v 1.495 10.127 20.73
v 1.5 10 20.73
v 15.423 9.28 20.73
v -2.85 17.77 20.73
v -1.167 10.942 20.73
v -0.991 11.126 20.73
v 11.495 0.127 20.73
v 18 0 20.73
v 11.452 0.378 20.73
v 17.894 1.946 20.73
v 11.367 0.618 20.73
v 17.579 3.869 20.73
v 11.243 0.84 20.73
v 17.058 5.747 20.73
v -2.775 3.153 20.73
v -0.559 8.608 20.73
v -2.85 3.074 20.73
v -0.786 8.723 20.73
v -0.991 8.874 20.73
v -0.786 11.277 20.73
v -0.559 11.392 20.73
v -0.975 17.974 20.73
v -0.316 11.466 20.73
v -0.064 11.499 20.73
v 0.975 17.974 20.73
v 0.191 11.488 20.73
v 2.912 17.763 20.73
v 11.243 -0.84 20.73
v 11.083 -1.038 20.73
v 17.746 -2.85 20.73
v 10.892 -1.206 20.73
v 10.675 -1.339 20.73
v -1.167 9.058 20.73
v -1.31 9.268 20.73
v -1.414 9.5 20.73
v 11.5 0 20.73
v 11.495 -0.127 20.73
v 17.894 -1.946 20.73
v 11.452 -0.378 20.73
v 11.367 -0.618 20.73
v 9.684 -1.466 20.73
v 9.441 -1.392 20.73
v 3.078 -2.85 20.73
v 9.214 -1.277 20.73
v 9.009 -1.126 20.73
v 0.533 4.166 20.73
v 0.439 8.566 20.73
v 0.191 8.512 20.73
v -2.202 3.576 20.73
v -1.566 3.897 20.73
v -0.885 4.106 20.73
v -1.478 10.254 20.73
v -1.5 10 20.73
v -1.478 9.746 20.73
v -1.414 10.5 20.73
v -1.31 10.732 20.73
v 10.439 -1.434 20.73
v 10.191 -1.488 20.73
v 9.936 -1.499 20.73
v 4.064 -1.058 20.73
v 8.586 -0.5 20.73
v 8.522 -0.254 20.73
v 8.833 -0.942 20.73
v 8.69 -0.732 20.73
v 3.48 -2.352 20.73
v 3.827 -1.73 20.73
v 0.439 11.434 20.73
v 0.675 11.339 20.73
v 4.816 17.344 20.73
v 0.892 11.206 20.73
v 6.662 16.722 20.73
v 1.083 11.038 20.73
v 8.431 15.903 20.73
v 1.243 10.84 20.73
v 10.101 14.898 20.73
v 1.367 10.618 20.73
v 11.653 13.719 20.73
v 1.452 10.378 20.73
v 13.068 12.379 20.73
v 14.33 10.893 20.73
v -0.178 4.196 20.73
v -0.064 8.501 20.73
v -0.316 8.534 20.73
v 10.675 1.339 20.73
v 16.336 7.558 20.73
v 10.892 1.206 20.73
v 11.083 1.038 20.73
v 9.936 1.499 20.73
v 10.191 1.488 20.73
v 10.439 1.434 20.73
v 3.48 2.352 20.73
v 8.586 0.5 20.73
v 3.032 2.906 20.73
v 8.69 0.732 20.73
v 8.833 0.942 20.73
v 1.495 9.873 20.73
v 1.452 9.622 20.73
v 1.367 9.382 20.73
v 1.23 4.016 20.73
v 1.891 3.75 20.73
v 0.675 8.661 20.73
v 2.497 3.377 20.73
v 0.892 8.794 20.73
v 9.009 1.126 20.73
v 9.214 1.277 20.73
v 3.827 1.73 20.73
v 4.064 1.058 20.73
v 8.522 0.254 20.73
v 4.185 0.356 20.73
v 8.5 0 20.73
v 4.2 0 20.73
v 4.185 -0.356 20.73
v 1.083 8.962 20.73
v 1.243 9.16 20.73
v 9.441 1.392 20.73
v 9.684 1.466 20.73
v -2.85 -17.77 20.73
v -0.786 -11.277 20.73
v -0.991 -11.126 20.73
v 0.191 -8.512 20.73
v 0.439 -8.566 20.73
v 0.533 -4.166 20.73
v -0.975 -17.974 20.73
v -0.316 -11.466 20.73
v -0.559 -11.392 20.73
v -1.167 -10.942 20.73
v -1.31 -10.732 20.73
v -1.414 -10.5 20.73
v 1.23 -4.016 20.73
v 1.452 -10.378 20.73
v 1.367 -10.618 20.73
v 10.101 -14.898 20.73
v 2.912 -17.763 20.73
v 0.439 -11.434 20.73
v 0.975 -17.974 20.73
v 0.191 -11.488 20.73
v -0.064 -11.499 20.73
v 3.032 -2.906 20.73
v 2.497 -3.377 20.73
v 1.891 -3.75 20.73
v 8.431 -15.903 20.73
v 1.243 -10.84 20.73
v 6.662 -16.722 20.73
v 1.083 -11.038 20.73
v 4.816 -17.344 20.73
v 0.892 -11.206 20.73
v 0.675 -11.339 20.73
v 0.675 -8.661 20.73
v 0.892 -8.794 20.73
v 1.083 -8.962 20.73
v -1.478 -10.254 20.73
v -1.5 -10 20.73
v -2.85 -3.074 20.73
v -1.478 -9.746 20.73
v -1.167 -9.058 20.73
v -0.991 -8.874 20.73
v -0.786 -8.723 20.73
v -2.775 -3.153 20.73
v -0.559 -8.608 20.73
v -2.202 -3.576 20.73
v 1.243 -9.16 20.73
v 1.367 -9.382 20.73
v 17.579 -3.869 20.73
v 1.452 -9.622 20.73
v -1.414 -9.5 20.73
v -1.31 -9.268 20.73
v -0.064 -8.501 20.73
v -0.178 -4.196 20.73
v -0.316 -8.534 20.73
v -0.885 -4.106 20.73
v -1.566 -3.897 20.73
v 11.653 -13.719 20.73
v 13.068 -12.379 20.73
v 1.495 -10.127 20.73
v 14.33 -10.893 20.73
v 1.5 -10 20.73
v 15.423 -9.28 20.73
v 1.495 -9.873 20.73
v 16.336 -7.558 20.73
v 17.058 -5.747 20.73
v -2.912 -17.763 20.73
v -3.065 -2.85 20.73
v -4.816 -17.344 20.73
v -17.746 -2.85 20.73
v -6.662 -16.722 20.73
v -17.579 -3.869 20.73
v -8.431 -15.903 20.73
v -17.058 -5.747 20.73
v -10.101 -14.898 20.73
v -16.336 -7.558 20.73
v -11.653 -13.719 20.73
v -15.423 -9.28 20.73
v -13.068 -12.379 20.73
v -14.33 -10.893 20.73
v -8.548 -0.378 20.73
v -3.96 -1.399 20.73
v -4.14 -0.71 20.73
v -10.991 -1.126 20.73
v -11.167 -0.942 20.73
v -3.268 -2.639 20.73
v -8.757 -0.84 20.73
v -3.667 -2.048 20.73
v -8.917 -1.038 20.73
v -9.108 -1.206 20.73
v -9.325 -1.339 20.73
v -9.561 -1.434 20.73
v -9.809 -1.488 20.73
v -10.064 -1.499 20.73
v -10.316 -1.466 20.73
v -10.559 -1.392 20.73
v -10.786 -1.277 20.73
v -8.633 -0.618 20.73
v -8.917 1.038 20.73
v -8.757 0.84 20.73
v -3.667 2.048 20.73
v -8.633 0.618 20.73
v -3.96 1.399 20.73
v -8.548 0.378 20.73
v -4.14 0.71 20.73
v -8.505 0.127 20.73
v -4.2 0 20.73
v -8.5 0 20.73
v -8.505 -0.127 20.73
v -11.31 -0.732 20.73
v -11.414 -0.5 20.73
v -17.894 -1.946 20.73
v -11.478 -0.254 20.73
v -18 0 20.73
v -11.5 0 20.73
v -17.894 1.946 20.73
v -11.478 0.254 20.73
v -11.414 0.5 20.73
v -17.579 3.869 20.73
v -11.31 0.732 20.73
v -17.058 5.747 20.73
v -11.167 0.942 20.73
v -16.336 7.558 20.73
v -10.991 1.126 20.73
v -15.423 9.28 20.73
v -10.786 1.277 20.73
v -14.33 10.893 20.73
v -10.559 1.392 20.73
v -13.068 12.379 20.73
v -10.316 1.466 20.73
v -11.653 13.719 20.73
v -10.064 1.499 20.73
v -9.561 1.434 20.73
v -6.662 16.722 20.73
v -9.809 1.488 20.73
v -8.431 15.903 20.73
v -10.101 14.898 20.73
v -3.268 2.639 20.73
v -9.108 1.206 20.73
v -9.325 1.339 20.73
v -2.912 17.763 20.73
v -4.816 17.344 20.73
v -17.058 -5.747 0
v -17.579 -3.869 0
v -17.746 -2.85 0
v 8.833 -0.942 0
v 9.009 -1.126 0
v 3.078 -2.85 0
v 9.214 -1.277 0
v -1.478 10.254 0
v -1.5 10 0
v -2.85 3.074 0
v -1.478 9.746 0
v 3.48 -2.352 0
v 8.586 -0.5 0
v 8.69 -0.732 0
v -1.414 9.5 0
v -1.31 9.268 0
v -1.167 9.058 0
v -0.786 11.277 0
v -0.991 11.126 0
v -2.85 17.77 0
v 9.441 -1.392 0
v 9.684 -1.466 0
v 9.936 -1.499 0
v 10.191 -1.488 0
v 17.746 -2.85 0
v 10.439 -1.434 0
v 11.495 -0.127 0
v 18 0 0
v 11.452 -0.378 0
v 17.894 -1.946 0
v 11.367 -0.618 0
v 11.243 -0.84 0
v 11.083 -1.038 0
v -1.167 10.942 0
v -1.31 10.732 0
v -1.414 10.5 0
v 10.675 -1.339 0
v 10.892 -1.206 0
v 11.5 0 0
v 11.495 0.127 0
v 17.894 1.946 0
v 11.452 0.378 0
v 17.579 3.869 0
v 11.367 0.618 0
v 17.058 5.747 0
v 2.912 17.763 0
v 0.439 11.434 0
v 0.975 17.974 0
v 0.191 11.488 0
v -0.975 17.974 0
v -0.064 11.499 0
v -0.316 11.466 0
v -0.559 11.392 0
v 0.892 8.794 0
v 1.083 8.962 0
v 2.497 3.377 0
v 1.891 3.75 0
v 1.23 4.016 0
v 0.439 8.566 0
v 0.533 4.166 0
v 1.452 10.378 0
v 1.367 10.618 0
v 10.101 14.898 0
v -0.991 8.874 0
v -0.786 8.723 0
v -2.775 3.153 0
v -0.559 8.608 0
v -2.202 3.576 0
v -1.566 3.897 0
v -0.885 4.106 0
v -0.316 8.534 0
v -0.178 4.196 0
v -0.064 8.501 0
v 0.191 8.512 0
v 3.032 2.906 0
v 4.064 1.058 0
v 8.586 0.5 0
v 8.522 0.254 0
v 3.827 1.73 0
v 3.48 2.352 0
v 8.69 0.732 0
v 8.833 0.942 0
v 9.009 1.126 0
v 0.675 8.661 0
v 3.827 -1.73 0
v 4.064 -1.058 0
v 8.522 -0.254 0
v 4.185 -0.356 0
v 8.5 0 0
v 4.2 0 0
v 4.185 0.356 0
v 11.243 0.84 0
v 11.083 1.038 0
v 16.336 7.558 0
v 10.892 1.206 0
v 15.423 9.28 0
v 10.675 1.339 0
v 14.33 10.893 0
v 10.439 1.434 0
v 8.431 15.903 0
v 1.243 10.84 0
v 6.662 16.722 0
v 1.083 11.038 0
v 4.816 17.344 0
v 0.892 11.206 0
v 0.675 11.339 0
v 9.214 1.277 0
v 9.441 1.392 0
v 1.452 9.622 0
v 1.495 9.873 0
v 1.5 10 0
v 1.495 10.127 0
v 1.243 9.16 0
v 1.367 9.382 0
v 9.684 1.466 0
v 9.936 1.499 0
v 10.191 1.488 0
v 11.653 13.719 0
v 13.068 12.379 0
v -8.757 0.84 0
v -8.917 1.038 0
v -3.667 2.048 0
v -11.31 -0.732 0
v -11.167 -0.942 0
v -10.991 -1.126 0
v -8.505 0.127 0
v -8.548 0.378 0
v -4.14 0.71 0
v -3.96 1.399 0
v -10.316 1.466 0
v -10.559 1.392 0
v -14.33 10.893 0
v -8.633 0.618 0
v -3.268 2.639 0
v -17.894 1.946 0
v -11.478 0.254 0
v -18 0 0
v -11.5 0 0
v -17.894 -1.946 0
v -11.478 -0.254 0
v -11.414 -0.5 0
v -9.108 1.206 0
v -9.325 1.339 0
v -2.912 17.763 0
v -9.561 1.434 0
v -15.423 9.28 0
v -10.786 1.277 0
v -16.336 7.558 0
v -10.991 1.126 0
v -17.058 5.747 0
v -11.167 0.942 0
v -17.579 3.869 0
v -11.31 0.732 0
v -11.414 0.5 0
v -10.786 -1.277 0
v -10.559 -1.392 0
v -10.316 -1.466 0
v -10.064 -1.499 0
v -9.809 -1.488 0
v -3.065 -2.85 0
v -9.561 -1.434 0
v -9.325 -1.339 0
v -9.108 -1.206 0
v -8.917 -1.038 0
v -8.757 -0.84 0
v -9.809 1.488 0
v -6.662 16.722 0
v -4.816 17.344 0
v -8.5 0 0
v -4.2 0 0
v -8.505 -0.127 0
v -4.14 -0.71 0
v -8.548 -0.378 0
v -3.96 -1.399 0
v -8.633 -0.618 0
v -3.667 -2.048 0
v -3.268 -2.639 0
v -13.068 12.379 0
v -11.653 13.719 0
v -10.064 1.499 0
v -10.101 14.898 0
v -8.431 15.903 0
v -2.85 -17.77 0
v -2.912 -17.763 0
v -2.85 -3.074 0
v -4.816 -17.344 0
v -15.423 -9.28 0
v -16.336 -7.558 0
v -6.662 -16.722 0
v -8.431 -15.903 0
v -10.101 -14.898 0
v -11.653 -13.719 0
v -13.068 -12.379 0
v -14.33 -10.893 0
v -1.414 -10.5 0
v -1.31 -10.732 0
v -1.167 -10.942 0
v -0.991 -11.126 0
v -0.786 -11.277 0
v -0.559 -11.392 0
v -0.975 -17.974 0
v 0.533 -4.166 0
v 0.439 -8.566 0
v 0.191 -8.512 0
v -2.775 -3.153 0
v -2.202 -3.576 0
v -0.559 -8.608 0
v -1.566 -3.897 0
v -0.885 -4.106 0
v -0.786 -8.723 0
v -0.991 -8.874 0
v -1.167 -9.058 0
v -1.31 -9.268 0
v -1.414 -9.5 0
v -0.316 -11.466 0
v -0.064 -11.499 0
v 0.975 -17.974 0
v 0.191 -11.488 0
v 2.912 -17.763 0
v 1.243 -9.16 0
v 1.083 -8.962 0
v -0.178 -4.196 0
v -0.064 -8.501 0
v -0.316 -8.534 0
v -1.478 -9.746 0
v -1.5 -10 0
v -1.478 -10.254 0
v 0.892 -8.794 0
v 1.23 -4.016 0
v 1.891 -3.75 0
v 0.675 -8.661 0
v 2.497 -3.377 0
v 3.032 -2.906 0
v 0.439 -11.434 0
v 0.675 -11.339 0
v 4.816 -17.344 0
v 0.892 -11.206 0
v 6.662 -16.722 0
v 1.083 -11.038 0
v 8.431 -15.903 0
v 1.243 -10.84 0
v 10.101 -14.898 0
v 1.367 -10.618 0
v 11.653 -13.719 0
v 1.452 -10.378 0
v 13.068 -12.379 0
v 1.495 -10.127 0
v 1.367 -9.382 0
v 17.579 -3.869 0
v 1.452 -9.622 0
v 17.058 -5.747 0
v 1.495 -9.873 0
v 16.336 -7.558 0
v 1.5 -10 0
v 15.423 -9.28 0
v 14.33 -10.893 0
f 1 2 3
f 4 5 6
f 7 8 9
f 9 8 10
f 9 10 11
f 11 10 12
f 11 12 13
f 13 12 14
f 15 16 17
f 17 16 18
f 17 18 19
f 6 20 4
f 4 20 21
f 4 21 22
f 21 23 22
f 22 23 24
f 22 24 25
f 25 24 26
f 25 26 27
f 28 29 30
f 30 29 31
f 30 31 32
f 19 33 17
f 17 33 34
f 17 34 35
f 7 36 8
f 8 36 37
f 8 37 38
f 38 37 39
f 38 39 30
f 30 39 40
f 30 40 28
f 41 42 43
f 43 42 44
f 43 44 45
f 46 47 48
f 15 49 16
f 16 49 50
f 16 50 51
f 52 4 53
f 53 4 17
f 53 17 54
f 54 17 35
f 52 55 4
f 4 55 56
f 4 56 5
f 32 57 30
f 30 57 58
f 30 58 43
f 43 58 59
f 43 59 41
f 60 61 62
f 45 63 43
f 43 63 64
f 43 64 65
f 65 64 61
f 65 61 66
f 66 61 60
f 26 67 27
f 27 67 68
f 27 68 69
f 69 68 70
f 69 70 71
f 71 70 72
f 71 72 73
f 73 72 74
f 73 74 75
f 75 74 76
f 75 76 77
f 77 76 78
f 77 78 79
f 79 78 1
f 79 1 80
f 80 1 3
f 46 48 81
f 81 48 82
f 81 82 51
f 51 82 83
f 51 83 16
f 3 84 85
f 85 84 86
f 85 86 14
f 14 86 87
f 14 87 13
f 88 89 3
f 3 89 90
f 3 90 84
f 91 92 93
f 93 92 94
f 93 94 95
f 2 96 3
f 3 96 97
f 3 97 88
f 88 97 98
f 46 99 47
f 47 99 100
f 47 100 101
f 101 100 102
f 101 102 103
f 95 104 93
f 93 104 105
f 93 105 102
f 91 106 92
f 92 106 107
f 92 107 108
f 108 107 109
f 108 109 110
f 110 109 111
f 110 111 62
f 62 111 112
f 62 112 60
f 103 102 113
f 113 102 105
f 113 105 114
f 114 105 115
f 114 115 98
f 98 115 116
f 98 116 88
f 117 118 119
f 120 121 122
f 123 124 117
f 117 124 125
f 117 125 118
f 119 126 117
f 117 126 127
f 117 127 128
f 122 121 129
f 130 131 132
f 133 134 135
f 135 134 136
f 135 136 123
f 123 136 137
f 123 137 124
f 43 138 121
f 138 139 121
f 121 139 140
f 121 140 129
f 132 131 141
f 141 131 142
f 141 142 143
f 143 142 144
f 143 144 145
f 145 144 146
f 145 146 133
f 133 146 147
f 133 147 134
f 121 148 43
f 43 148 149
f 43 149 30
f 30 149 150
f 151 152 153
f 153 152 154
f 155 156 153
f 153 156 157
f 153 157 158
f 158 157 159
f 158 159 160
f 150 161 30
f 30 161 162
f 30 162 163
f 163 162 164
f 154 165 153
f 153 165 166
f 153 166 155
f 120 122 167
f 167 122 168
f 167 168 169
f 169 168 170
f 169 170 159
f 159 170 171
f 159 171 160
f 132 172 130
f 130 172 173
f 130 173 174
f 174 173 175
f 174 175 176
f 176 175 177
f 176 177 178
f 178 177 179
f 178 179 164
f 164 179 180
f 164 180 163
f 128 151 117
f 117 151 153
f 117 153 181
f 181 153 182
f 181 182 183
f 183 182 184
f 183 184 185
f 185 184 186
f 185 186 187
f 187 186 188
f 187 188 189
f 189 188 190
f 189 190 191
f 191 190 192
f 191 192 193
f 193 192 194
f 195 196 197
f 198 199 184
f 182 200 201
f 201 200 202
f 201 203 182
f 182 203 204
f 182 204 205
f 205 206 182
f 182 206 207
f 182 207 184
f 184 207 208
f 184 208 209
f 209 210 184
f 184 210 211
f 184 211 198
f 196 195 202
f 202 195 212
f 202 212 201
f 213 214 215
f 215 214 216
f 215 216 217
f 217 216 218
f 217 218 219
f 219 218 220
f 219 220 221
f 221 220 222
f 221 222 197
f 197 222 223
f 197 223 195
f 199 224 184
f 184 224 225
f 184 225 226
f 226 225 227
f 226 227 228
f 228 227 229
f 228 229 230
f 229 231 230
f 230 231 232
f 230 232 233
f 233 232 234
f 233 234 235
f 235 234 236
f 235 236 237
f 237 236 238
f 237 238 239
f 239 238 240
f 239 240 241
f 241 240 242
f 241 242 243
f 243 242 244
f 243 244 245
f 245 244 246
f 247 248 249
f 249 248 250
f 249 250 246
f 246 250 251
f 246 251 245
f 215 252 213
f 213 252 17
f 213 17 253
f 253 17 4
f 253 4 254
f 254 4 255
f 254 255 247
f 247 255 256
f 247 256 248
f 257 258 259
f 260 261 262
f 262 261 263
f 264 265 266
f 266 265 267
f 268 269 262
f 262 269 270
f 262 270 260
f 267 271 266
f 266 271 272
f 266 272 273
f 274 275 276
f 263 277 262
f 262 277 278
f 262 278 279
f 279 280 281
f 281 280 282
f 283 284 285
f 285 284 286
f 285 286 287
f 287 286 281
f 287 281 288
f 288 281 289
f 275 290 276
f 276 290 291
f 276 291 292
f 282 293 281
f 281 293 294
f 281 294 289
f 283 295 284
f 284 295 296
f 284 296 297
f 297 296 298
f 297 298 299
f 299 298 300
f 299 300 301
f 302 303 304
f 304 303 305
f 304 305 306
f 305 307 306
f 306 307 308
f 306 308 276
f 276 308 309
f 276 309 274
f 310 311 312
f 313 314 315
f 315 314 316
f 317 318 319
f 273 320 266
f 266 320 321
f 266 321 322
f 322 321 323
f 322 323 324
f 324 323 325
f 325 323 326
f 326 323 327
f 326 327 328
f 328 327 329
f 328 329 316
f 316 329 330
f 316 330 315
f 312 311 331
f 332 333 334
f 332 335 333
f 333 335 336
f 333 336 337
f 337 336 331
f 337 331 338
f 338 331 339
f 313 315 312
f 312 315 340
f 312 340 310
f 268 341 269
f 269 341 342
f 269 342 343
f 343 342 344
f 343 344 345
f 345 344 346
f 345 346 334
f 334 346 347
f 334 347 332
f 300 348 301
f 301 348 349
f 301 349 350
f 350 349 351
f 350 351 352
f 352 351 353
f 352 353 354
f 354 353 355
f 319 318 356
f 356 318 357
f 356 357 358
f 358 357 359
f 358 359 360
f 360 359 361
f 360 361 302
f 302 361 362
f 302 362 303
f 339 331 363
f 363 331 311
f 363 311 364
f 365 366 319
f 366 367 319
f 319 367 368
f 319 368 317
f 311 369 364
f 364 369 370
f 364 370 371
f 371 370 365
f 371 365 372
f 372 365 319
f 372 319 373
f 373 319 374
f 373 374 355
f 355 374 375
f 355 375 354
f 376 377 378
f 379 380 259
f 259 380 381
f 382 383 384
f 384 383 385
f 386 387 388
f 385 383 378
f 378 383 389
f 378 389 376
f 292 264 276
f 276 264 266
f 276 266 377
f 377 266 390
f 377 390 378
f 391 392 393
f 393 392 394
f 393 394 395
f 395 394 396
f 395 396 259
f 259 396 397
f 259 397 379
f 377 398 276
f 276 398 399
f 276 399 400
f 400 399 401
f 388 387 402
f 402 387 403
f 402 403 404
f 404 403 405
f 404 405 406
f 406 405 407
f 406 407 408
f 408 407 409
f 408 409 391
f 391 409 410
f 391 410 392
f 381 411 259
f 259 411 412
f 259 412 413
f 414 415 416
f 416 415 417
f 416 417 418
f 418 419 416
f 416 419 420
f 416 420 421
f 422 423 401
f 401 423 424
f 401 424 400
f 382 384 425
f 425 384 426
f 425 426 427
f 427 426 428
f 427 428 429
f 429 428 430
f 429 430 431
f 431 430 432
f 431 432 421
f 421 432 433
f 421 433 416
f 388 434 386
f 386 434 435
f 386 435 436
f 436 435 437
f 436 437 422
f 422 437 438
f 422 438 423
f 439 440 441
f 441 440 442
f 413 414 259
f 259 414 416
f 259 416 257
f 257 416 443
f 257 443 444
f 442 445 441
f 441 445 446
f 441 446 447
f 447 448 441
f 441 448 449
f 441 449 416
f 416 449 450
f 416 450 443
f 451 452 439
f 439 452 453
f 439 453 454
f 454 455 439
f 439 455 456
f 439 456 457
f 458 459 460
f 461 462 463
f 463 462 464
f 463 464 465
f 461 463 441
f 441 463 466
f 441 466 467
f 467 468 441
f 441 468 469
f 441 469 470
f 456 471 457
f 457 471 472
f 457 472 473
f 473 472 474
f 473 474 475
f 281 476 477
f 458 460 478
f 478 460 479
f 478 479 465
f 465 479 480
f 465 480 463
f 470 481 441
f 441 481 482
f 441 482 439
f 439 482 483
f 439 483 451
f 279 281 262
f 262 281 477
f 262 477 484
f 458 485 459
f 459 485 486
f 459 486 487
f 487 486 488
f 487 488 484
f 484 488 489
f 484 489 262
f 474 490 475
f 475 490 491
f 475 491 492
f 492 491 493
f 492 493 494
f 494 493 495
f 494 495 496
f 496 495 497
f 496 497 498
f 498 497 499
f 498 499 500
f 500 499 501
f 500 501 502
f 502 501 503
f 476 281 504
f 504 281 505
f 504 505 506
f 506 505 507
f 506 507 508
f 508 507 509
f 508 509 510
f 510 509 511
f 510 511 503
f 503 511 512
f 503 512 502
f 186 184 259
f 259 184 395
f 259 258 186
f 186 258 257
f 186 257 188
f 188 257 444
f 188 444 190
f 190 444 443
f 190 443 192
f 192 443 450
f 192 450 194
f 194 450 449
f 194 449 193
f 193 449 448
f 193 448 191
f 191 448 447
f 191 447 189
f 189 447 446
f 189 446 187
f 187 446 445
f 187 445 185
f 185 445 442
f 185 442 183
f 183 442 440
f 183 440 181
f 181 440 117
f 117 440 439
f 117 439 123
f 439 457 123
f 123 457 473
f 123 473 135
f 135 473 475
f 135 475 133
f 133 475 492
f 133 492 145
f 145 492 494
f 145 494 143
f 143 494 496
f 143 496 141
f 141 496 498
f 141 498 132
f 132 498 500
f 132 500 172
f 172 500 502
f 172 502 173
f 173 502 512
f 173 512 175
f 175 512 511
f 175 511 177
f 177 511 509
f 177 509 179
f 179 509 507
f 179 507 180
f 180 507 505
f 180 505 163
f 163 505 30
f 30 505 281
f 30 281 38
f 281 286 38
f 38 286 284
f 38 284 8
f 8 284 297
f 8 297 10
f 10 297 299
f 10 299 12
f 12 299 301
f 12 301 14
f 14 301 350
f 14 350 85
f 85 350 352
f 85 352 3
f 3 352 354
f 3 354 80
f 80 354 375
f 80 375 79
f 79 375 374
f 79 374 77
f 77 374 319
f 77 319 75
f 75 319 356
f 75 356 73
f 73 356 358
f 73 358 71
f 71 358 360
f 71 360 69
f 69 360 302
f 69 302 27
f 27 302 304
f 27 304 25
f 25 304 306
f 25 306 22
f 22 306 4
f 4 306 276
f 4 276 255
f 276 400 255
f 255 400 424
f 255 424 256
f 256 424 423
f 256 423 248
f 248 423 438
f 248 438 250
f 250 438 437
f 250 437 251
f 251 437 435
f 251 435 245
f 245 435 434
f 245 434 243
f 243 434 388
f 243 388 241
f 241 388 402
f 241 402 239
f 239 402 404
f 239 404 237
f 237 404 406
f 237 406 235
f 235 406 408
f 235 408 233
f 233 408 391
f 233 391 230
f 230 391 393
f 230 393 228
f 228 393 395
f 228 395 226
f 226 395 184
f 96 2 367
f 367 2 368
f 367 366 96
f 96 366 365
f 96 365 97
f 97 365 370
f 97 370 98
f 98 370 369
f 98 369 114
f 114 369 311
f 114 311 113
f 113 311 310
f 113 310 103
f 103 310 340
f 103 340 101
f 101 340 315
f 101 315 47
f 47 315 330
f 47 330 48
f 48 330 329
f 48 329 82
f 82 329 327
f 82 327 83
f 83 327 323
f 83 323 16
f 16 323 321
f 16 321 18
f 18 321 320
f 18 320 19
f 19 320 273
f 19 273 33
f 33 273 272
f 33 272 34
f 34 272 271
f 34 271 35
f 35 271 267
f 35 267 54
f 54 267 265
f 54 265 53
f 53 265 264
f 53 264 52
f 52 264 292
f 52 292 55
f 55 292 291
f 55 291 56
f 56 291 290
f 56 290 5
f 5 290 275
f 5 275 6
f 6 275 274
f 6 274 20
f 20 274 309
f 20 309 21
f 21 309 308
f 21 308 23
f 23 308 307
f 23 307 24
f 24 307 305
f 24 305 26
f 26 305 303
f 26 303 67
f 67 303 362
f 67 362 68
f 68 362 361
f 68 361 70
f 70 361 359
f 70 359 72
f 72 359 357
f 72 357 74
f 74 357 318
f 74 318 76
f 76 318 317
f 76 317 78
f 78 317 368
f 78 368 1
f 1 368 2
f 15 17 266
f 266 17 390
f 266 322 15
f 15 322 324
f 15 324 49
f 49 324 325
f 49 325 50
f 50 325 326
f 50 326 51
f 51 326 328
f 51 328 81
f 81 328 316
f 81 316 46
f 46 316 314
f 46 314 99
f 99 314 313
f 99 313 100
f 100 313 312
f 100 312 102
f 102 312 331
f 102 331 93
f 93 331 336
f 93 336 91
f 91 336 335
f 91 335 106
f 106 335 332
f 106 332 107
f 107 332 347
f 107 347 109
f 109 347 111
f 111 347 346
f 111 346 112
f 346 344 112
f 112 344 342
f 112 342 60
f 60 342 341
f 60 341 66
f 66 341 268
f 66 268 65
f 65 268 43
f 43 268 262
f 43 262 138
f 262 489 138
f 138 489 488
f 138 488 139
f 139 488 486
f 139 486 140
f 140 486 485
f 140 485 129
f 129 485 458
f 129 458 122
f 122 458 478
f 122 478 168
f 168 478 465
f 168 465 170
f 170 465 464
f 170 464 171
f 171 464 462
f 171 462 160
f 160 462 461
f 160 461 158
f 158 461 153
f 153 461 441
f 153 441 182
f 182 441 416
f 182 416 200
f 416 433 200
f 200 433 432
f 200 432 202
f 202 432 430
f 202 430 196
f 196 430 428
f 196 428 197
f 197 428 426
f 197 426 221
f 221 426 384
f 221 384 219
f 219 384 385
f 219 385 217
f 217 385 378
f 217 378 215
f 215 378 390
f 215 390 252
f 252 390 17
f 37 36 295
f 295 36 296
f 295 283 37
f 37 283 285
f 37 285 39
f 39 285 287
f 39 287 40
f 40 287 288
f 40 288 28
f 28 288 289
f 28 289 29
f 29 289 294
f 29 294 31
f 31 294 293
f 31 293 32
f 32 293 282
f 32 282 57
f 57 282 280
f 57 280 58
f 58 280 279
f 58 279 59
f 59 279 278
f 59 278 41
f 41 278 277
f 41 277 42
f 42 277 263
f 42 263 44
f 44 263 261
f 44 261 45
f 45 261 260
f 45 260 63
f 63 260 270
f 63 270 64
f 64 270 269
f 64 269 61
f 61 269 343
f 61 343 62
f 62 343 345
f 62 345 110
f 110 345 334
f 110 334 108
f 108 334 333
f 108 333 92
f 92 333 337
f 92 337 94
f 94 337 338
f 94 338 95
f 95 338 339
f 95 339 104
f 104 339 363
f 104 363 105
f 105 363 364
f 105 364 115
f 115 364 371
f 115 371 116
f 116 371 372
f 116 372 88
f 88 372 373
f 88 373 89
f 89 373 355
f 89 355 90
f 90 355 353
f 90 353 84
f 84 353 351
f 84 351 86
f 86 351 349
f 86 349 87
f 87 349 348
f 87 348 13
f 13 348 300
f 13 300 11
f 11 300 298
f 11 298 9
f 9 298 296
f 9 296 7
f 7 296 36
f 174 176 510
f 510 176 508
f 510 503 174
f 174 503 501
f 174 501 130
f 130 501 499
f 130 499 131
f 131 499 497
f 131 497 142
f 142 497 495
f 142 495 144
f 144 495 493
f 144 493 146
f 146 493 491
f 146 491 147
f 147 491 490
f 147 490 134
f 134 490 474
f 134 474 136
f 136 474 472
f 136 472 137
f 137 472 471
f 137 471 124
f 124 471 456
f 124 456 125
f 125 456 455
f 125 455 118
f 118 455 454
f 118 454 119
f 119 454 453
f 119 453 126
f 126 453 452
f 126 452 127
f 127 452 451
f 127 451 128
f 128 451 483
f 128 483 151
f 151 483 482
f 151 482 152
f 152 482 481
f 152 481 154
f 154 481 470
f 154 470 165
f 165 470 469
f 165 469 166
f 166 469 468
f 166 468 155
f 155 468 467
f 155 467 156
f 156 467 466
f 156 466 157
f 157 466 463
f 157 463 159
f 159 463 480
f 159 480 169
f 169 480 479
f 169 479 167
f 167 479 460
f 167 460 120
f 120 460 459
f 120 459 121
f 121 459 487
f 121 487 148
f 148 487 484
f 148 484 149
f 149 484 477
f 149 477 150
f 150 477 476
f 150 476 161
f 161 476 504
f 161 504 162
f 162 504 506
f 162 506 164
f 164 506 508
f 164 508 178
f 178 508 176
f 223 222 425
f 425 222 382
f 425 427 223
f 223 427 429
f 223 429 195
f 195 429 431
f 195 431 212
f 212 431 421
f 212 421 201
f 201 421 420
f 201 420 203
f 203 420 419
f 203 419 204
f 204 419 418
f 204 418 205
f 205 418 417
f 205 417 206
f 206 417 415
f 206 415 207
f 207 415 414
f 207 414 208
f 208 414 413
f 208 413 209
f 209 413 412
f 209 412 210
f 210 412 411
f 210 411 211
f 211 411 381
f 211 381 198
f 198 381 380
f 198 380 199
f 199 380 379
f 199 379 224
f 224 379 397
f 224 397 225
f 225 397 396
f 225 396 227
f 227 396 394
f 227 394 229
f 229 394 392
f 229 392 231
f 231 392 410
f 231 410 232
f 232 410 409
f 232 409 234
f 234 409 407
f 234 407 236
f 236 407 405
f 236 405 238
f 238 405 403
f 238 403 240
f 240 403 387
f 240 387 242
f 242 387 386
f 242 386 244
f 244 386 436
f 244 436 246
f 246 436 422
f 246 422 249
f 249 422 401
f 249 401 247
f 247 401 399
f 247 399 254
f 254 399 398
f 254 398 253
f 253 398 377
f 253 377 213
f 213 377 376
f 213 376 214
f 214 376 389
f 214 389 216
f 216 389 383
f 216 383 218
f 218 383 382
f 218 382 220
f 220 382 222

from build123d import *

# Parameters (mm, degrees)
SKETCH1_R           = 18
SKETCH1_R_2         = 1.5
SKETCH1_R_3         = 4.2
BOSS_EXTRUDE2_DEPTH = 20.73


with BuildPart() as part:
    # Sketch1 → Boss-Extrude2 (new body)
    with BuildSketch(Plane.XY):
        Circle(SKETCH1_R)
        with Locations((0, 10)):
            Circle(SKETCH1_R_2, mode=Mode.SUBTRACT)
        Circle(SKETCH1_R_3, mode=Mode.SUBTRACT)
        with Locations((10, 0)):
            Circle(SKETCH1_R_2, mode=Mode.SUBTRACT)
        with Locations((0, -10)):
            Circle(SKETCH1_R_2, mode=Mode.SUBTRACT)
        with Locations((-10, 0)):
            Circle(SKETCH1_R_2, mode=Mode.SUBTRACT)
    extrude(amount=BOSS_EXTRUDE2_DEPTH)


solid = part.part
